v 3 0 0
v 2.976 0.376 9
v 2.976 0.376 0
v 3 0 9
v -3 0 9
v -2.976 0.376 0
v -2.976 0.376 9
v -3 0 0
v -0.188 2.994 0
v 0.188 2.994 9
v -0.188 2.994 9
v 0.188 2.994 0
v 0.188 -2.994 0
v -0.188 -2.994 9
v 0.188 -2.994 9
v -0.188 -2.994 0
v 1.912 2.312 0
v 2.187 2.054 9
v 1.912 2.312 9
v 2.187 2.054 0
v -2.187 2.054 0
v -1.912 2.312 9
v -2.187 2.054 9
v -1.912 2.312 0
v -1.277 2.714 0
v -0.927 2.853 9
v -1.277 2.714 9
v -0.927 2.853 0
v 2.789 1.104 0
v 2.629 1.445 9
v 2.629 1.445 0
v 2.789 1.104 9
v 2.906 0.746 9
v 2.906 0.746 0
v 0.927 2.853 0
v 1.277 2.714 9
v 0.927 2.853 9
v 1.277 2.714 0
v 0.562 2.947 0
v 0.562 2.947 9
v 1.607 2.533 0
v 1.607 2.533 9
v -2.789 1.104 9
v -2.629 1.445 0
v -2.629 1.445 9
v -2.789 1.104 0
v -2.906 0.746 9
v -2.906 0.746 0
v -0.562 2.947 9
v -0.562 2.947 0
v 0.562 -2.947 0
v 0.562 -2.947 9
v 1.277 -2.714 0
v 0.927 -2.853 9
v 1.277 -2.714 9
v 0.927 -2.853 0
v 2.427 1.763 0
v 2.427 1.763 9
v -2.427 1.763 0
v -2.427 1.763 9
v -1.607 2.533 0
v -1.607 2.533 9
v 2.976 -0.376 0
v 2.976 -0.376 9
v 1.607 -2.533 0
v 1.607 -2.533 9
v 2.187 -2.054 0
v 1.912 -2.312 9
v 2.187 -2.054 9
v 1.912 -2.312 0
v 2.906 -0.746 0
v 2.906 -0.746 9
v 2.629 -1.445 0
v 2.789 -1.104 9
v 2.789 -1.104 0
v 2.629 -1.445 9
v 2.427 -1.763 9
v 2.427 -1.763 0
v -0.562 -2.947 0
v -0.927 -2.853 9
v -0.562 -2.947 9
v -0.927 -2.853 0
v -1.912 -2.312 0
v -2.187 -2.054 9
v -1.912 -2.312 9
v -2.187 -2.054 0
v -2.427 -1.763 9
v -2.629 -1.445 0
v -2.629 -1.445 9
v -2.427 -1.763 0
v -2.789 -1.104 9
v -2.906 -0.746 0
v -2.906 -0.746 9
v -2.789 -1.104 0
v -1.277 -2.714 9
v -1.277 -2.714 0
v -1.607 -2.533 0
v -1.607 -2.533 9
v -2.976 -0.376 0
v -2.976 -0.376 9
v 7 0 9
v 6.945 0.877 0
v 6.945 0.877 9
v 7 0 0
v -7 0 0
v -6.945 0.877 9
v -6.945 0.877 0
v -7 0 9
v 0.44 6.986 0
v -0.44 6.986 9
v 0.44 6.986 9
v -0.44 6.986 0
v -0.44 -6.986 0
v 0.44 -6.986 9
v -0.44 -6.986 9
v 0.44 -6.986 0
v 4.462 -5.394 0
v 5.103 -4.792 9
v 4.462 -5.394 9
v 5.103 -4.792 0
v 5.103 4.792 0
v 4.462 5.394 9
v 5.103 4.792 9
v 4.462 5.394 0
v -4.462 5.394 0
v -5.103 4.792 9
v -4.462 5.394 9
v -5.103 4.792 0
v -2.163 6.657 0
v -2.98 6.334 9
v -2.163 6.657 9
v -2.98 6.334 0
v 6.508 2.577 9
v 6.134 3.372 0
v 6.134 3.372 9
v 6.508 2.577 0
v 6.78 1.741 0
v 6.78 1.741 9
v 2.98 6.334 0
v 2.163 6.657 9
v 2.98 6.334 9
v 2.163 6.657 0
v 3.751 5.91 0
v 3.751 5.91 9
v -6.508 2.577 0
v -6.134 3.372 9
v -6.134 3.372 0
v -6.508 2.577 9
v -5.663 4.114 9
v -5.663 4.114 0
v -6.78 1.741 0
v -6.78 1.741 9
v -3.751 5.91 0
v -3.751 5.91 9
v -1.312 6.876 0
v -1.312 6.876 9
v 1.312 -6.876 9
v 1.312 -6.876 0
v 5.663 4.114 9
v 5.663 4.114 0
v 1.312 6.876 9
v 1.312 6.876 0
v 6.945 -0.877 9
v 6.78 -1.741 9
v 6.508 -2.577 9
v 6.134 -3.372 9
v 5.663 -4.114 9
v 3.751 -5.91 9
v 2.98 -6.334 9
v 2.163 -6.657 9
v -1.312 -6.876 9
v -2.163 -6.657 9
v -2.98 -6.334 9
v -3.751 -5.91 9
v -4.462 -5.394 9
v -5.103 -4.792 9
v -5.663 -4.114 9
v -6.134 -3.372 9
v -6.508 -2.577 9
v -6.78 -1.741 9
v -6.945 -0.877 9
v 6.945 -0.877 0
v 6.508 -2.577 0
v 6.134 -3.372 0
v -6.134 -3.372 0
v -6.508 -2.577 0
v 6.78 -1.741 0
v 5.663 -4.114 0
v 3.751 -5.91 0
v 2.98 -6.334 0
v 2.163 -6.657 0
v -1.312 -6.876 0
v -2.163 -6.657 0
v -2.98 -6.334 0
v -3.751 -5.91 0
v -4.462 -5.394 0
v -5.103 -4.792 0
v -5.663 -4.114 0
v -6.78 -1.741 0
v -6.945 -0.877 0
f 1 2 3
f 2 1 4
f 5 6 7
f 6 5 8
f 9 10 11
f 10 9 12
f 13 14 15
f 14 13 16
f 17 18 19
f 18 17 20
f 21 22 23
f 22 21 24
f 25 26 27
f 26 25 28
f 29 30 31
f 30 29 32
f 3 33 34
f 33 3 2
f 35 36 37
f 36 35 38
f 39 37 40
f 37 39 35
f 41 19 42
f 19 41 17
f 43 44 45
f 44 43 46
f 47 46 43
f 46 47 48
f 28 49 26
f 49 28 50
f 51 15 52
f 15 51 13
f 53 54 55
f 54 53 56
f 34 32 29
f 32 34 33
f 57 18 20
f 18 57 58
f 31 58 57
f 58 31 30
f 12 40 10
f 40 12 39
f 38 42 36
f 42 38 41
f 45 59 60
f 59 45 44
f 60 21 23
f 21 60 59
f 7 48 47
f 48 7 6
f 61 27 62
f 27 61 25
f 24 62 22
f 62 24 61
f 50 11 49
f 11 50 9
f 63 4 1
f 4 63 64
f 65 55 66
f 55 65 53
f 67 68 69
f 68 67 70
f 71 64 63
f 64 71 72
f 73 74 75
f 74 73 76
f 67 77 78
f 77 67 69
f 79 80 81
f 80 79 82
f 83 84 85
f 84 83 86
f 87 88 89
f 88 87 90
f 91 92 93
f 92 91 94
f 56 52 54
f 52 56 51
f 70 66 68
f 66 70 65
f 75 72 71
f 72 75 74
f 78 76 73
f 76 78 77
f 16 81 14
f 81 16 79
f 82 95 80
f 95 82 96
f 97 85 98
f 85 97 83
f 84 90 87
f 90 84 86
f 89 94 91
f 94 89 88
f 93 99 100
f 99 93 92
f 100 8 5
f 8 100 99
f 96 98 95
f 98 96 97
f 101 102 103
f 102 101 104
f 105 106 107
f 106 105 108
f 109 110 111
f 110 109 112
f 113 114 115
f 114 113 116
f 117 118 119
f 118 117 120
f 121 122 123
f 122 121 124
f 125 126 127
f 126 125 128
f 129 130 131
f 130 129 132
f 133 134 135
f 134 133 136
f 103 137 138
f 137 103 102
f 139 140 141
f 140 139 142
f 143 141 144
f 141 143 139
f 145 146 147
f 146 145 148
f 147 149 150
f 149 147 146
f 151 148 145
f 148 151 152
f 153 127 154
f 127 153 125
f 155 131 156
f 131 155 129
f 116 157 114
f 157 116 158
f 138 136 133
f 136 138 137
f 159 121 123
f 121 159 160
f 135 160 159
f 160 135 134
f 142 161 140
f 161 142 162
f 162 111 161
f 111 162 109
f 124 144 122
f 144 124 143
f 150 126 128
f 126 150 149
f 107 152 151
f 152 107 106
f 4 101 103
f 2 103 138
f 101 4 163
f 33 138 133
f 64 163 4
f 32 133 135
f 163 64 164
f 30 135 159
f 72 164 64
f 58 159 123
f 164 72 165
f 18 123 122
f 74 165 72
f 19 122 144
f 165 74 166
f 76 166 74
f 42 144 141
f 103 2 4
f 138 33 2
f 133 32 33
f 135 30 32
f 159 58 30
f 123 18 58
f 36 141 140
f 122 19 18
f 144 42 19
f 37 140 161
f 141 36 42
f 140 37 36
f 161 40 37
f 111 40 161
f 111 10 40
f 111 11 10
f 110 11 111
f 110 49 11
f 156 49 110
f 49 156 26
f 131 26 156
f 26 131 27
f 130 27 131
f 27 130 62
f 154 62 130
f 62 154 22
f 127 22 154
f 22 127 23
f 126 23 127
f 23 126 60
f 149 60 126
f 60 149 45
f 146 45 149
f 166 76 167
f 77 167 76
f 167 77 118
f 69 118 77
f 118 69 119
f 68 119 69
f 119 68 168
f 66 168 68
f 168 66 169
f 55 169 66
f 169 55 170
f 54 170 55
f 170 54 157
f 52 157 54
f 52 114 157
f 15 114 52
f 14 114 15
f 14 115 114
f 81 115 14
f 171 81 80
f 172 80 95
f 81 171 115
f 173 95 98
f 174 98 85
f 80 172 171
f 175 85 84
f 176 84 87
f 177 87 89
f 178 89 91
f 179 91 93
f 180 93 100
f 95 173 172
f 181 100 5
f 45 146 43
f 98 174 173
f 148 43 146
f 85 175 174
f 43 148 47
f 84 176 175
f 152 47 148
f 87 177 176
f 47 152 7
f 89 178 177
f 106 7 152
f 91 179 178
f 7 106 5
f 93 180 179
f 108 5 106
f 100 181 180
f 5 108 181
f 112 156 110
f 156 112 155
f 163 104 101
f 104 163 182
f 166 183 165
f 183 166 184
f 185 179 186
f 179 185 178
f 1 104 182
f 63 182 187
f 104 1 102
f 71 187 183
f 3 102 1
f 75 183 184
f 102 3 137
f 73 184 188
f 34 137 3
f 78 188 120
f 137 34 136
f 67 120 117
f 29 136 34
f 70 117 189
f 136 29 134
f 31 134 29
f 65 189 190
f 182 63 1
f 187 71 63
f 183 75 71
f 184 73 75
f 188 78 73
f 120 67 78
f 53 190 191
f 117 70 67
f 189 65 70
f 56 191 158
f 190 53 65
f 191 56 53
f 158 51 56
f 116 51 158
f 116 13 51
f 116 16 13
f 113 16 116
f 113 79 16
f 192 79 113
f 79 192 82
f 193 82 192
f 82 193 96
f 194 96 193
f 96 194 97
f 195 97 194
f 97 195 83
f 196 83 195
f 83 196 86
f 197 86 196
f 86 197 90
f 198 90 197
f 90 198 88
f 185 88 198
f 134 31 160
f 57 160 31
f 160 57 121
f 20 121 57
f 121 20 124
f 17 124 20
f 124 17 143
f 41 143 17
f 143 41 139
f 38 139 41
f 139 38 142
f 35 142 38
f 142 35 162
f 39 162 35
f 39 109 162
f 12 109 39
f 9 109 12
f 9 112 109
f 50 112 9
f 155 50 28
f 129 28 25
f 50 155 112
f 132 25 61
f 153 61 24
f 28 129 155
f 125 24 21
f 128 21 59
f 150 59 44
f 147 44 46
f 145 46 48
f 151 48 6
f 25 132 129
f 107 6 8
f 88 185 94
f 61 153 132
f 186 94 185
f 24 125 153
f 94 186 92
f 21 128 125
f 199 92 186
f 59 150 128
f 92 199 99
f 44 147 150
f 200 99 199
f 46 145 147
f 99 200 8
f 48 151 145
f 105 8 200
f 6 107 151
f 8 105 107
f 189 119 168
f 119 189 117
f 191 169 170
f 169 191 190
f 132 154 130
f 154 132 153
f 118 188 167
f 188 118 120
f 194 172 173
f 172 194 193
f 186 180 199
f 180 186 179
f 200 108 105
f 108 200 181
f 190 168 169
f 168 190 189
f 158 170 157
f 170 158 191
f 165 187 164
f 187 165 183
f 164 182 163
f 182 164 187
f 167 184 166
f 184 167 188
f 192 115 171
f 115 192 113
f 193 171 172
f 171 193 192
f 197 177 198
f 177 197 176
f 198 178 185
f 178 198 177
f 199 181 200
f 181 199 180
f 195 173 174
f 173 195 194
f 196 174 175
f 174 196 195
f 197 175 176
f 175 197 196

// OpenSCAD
$fn = 50;


difference() {
	union() {
		translate(v = [0, 0, 0]) {
			rotate(a = [0, 0, 0]) {
				cylinder(h = 9, r = 7.0000000000);
			}
		}
	}
	union() {
		translate(v = [0.0000000000, 0.0000000000, 0]) {
			rotate(a = [0, 0, 0]) {
				translate(v = [0, 0, -50]) {
					rotate(a = [0, 0, 0]) {
						cylinder(h = 100, r = 3.0000000000);
					}
				}
			}
		}
	}
}
